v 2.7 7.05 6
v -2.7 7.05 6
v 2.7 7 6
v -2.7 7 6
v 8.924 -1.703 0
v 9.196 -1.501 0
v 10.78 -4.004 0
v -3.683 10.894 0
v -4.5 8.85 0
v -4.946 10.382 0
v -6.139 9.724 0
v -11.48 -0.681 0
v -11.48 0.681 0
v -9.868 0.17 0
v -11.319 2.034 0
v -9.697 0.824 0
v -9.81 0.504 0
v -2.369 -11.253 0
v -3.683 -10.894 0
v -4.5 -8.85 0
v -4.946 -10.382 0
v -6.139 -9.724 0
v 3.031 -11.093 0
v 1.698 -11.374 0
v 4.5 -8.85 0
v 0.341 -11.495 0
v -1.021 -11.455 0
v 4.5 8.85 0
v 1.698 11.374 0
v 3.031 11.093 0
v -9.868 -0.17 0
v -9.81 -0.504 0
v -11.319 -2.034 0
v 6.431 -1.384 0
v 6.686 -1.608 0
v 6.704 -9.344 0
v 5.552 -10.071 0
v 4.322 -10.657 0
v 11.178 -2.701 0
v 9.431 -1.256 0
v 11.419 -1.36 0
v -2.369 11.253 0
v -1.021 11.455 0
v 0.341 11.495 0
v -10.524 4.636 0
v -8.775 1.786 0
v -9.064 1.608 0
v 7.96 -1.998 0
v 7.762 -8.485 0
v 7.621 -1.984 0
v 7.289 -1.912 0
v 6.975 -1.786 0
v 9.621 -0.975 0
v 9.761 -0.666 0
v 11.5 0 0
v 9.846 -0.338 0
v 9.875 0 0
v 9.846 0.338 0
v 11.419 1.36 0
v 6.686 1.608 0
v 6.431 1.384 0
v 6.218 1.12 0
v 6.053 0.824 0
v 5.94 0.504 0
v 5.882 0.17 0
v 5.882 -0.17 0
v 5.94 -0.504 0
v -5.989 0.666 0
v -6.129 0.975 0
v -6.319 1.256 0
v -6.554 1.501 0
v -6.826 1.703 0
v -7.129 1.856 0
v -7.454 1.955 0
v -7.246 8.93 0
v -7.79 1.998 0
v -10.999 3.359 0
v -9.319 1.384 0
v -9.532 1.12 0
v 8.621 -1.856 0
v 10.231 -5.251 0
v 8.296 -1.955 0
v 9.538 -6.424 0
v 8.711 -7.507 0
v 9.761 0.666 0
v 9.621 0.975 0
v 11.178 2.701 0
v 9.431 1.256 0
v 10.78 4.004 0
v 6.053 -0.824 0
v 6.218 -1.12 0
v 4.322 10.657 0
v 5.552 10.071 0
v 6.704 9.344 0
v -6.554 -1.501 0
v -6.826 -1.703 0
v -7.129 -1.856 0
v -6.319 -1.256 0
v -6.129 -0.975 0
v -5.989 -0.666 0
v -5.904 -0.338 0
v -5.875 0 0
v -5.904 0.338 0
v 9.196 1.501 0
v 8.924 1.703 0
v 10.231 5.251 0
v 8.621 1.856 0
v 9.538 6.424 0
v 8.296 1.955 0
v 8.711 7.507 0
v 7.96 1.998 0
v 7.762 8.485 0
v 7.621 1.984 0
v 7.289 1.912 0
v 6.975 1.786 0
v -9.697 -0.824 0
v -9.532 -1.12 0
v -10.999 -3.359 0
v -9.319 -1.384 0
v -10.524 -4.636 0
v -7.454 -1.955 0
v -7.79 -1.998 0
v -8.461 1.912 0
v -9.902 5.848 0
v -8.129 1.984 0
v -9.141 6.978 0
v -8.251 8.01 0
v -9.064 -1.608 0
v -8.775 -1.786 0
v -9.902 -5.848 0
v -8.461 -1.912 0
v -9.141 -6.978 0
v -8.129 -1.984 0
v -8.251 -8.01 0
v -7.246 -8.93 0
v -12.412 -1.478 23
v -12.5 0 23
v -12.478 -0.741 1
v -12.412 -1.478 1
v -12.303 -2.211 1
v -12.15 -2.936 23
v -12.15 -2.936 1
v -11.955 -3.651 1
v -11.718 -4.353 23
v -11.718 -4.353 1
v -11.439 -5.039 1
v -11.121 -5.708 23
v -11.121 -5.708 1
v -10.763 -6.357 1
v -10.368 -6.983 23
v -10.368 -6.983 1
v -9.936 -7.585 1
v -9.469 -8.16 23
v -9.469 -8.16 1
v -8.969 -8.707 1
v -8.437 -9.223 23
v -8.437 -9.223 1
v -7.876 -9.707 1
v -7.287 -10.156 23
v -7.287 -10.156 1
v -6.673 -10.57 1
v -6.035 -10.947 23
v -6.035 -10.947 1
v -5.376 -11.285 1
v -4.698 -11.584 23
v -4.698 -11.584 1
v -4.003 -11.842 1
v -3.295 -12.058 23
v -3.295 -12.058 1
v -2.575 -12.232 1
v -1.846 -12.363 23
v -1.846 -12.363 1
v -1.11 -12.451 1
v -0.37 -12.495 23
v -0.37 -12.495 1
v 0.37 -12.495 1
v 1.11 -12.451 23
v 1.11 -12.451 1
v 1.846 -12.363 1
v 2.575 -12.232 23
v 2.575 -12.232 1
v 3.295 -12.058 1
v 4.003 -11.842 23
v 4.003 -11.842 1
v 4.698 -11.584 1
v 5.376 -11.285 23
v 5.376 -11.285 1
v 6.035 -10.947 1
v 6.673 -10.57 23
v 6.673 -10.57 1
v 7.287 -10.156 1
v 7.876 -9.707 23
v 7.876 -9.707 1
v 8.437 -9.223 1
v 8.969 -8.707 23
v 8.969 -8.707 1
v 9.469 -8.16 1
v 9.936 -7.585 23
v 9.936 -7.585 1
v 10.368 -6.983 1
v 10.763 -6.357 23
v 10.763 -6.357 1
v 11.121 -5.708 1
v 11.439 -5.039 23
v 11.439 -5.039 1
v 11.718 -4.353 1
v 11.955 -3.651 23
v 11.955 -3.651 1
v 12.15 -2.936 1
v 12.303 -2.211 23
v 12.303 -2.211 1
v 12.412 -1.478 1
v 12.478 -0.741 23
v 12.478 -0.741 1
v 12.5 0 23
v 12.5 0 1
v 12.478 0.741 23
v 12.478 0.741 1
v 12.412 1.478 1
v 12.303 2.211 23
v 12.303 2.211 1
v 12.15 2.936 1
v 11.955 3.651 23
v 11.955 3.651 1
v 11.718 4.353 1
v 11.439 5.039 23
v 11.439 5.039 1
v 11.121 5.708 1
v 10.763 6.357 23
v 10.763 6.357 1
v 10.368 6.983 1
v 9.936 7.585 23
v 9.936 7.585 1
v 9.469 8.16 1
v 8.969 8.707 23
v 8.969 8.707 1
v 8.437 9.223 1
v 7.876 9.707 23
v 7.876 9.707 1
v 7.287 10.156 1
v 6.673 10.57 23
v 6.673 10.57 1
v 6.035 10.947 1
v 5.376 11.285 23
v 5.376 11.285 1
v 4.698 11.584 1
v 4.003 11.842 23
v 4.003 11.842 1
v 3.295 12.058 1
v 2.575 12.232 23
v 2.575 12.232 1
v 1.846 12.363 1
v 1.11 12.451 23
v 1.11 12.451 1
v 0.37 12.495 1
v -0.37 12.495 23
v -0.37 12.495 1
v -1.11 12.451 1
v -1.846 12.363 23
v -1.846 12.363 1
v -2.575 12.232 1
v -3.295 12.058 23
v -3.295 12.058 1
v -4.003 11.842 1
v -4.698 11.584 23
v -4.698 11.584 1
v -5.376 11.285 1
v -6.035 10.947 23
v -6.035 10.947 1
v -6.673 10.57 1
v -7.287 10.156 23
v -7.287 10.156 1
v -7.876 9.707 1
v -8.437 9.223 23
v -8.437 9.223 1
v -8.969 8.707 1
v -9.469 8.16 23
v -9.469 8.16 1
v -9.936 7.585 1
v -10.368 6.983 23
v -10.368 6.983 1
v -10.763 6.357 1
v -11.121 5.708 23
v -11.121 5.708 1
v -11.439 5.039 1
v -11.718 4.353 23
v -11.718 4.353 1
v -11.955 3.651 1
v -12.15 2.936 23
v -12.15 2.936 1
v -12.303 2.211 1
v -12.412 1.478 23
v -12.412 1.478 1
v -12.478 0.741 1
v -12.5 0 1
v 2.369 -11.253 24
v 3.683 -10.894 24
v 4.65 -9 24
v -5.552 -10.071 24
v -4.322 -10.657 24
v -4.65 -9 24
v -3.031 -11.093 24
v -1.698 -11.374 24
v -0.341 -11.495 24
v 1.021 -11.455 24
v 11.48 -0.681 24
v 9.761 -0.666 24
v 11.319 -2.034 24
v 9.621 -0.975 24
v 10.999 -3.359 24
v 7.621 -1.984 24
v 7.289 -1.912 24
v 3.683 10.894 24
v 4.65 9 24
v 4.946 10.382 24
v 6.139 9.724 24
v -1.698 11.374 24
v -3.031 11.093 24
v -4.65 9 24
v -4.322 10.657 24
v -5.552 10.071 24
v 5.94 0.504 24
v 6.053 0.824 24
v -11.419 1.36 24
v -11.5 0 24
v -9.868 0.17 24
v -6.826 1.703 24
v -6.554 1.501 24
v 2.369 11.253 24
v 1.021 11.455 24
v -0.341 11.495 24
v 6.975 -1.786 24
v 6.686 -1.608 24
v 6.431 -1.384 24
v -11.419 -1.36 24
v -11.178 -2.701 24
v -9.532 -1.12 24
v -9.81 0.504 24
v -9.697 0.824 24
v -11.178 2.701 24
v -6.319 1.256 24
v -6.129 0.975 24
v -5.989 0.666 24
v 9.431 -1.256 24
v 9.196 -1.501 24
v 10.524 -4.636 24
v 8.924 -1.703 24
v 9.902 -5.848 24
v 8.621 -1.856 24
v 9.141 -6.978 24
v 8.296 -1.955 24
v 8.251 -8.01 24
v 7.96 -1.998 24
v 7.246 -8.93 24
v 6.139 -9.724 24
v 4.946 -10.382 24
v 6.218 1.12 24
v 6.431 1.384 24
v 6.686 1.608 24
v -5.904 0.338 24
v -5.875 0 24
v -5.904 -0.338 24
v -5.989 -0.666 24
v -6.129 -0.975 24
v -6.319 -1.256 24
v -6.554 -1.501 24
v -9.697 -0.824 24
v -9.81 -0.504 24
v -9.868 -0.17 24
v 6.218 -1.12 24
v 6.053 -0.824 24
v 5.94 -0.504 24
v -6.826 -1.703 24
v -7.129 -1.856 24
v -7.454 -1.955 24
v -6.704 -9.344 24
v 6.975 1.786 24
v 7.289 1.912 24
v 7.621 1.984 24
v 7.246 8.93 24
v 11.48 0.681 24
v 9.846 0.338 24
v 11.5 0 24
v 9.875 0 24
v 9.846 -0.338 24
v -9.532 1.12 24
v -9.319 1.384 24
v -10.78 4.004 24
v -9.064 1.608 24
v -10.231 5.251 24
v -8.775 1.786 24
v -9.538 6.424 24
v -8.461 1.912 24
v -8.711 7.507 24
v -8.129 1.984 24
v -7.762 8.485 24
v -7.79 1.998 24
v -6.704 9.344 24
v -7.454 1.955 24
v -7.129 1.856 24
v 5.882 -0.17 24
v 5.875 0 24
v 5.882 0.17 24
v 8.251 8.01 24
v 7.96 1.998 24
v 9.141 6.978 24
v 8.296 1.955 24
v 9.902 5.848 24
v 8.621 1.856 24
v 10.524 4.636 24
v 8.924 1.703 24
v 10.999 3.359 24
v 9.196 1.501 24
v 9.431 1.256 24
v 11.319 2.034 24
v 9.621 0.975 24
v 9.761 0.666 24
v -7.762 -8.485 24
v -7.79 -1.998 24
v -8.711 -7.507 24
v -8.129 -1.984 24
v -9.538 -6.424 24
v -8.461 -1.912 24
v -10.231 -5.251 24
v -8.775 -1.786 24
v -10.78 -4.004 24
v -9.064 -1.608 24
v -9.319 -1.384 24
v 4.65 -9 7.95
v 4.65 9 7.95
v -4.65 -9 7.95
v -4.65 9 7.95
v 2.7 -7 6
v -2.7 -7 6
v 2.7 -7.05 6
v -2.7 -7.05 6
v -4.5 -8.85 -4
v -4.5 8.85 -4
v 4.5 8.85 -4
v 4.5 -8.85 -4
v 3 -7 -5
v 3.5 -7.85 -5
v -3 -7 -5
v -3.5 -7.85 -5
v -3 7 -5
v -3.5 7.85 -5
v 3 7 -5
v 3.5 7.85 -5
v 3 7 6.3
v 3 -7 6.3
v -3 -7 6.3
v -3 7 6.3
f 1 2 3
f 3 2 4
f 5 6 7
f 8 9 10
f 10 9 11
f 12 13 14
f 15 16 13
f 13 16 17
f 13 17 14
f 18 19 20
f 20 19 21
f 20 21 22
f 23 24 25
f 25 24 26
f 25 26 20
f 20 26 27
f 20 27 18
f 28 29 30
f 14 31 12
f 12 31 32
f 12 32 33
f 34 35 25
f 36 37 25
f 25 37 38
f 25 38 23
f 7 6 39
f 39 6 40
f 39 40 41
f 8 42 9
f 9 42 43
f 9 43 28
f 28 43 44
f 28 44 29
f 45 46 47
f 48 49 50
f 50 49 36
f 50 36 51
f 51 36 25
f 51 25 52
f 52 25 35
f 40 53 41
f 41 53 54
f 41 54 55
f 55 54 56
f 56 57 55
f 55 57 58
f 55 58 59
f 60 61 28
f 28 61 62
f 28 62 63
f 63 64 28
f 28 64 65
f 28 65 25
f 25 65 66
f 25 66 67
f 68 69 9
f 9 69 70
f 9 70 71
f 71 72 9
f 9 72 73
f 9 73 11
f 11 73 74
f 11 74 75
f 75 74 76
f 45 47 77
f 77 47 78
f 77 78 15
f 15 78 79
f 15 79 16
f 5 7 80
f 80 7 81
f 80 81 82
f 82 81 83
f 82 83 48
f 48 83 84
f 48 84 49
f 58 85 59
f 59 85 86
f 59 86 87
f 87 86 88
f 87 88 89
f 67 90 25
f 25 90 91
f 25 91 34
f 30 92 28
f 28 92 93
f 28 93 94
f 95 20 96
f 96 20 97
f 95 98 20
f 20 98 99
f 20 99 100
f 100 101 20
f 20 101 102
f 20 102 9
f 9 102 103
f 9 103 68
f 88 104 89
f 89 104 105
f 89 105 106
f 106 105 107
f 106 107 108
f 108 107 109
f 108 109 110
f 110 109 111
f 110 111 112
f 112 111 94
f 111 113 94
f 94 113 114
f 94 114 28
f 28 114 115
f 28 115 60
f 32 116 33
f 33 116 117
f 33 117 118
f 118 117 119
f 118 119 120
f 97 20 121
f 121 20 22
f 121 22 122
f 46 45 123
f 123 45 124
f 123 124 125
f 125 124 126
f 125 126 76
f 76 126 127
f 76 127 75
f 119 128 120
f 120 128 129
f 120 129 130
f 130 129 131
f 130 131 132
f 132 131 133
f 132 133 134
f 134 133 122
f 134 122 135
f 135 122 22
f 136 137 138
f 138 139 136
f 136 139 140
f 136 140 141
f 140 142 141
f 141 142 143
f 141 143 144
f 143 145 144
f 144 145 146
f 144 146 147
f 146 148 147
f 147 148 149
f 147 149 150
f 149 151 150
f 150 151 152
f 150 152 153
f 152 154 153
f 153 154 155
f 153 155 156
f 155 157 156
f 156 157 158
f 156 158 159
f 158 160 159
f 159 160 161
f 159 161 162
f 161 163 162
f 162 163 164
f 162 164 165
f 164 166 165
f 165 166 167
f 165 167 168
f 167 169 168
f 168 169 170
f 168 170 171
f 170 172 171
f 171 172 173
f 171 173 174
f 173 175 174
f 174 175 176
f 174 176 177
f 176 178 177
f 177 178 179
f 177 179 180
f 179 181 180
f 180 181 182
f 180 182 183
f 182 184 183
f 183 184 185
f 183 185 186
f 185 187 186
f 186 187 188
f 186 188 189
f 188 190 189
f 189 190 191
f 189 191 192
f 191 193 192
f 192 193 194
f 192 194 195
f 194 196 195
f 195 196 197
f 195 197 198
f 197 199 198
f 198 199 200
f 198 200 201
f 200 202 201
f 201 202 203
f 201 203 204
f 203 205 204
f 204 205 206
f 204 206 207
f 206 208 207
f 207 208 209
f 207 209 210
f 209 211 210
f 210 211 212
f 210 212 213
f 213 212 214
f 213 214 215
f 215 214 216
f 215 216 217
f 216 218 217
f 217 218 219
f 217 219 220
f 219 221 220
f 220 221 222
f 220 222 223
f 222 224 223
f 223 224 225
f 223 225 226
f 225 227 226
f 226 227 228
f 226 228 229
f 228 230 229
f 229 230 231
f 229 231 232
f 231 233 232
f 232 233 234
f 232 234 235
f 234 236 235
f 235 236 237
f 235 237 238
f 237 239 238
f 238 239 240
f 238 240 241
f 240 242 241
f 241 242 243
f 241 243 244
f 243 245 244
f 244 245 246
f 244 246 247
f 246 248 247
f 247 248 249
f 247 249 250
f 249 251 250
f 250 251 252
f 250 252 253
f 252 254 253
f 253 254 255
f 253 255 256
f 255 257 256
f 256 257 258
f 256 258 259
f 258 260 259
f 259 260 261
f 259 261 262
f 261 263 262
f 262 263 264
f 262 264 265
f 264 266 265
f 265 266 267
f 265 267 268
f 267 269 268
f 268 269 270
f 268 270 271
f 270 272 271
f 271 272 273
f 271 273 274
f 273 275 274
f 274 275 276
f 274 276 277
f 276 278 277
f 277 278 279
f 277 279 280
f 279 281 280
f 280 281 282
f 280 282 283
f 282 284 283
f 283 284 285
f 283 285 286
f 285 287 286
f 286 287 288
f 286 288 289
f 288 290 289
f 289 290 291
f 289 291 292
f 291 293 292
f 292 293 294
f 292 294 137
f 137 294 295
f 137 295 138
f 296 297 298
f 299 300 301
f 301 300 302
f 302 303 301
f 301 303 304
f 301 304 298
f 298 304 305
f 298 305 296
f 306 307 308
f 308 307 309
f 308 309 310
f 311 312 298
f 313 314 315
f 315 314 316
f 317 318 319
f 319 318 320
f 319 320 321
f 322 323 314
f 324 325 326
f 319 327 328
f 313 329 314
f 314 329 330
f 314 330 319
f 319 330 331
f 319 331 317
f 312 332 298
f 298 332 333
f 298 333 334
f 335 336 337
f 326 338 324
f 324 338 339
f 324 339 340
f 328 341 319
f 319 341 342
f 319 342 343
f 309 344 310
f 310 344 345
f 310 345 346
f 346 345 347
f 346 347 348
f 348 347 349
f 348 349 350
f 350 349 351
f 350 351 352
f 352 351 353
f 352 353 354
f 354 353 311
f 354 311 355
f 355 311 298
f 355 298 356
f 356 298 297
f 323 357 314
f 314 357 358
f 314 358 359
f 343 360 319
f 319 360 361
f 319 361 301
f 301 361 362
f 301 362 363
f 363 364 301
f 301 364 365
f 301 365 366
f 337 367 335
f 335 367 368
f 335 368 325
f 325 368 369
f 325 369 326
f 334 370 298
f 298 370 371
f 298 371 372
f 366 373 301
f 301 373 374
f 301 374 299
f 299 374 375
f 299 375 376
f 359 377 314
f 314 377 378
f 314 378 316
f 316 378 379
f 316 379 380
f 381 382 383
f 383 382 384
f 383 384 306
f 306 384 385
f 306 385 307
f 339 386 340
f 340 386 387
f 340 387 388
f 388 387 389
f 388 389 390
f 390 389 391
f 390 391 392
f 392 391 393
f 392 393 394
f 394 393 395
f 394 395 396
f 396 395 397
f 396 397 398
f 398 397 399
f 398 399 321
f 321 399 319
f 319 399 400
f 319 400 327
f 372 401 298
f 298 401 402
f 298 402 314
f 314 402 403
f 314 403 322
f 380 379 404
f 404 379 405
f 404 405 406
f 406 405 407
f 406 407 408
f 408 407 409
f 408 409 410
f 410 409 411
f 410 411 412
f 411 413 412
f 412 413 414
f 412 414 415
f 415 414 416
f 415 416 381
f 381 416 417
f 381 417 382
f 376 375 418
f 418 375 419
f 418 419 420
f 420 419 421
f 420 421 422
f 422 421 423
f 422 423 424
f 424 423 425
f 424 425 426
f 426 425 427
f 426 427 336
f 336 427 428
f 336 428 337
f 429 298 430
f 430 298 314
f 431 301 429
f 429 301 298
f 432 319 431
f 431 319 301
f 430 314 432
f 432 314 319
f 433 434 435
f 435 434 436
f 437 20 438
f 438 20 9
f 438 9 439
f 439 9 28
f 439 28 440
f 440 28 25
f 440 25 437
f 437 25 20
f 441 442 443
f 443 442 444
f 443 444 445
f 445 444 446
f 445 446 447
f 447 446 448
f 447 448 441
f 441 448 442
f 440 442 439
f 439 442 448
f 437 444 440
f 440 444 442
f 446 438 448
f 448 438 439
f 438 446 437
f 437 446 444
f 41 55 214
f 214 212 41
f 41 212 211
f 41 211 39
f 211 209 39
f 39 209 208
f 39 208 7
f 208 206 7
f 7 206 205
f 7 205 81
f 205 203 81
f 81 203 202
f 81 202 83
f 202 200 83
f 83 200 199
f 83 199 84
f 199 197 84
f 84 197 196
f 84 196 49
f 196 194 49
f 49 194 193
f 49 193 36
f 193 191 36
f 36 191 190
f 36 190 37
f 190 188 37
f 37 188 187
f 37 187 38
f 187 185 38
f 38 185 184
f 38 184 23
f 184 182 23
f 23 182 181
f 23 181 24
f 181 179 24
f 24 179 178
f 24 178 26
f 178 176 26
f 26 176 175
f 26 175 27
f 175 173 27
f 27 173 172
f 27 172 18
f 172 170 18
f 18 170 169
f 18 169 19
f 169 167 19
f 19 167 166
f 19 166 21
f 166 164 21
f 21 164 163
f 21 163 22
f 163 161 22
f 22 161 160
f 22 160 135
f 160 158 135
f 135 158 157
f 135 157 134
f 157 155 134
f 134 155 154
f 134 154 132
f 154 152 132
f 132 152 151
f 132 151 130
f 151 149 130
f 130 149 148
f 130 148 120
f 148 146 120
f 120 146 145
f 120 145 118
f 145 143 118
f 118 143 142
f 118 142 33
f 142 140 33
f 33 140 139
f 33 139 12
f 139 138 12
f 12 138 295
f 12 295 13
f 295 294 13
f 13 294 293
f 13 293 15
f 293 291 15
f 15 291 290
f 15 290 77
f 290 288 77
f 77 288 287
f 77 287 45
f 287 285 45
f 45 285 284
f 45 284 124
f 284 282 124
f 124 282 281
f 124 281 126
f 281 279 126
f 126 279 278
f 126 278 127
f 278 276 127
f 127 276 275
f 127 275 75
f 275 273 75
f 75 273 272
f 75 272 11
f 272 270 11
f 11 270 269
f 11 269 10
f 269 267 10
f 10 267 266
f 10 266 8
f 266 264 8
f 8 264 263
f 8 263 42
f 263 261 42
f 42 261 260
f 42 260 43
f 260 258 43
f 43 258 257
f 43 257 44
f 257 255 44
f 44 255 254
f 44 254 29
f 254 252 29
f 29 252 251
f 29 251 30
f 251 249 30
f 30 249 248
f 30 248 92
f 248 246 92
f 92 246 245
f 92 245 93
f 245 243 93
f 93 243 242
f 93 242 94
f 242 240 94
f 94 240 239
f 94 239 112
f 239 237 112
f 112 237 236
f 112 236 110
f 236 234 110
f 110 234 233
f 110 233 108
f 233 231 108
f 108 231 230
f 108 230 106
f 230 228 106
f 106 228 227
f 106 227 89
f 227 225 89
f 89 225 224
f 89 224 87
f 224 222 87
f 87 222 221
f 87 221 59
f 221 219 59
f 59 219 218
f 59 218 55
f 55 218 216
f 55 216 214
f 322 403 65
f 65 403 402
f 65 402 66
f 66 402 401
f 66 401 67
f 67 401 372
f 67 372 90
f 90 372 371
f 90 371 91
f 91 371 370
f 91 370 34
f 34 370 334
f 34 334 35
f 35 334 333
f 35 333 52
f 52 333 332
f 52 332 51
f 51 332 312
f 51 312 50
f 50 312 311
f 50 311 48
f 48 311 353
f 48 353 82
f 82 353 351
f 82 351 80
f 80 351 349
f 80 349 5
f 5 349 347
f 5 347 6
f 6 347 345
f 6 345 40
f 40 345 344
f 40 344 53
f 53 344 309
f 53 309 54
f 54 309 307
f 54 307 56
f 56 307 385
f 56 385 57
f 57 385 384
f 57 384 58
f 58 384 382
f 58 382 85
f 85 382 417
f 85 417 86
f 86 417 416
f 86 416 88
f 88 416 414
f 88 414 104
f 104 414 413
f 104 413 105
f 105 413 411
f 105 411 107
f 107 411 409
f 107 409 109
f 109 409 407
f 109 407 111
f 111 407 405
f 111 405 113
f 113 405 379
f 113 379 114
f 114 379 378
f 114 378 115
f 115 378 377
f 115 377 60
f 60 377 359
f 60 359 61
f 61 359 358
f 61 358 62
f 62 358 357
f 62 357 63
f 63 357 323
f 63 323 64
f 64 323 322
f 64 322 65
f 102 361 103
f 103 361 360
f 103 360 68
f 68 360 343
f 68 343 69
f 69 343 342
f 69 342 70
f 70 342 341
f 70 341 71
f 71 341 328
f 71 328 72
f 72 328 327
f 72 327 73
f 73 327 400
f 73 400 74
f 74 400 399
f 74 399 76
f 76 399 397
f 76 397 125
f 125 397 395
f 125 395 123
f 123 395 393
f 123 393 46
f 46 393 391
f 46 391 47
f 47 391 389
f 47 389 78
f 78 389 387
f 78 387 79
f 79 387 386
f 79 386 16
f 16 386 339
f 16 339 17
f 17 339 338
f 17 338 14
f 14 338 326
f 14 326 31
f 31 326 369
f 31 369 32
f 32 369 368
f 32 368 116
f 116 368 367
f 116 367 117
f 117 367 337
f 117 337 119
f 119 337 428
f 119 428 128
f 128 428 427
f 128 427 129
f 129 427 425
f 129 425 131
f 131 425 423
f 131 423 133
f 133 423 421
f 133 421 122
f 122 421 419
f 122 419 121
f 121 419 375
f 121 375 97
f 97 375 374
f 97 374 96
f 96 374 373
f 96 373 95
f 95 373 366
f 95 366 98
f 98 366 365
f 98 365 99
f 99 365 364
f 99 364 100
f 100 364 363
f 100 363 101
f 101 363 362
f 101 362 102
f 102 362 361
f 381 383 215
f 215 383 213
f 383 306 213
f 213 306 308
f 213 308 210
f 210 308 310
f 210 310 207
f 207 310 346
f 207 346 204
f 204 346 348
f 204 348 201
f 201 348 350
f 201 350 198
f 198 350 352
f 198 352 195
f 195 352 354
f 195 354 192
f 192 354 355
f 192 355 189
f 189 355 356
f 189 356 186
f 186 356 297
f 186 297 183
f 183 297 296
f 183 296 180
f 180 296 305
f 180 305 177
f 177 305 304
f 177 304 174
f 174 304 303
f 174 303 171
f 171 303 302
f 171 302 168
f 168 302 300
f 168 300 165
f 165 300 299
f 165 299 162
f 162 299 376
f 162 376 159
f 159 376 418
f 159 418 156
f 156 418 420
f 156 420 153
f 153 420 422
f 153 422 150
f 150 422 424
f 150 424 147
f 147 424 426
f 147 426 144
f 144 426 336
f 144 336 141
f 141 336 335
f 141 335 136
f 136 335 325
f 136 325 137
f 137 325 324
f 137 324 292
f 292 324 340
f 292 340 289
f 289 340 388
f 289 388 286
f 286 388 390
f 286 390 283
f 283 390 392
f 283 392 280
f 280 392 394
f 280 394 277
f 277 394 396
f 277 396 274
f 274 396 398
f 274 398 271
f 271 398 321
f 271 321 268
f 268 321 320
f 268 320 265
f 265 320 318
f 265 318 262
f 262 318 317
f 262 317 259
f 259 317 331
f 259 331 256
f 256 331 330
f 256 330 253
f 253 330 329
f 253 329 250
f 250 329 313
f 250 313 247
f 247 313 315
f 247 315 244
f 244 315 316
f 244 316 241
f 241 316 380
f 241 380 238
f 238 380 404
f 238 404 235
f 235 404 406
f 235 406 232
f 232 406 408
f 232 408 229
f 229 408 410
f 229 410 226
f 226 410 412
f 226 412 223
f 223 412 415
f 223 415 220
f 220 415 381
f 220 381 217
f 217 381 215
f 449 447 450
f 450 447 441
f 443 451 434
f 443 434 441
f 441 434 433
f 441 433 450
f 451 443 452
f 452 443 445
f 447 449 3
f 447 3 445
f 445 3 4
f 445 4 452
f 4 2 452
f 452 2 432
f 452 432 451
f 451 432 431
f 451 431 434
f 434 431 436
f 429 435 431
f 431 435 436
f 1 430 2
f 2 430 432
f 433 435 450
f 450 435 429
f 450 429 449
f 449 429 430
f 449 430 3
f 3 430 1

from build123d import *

# Parameters (mm, degrees)
CROQUIS1_R              = 12.5
SALIENTE_EXTRUIR1_DEPTH = 24
CROQUIS2_W              = 9.3
CROQUIS2_H              = 18
CORTAR_EXTRUIR1_DEPTH   = 18
CROQUIS3_W              = 9
CROQUIS3_H              = 17.7
SALIENTE_EXTRUIR2_DEPTH = 5
CHAFL_N1_SIZE           = 1
CHAFL_N2_SIZE           = 1
CROQUIS4_R              = 2
CORTAR_EXTRUIR2_DEPTH   = 34.963215395
CHAFL_N3_SIZE           = 1
CROQUIS5_W              = 6
CROQUIS5_H              = 14
CORTAR_EXTRUIR3_DEPTH   = 26.228951623
CHAFL_N4_SIZE           = 1.95


with BuildPart() as part:
    # Croquis1 → Saliente-Extruir1 (new body)
    with BuildSketch(Plane.XY):
        Circle(CROQUIS1_R)
    extrude(amount=SALIENTE_EXTRUIR1_DEPTH)

    # Croquis2 → Cortar-Extruir1 (cut)
    with BuildSketch(Plane.XY.offset(24)):
        Rectangle(CROQUIS2_W, CROQUIS2_H)
    extrude(amount=-CORTAR_EXTRUIR1_DEPTH, mode=Mode.SUBTRACT)

    # Croquis3 → Saliente-Extruir2 (add)
    with BuildSketch(Plane(origin=(0, 0, 0), x_dir=(-1, 0, 0), z_dir=(0, 0, -1))):
        Rectangle(CROQUIS3_W, CROQUIS3_H)
    extrude(amount=SALIENTE_EXTRUIR2_DEPTH)

    # Chaflán1
    chafl_n1_edges = [part.edges().sort_by_distance(p)[0] for p in [
        (-4.5, 0, -5),
        (0, 8.85, -5),
        (4.5, 0, -5),
        (0, -8.85, -5),
    ]]
    chamfer(chafl_n1_edges, length=CHAFL_N1_SIZE)

    # Chaflán2
    chafl_n2_edges = [part.edges().sort_by_distance(p)[0] for p in [
        (-12.5, 0, 0),
    ]]
    chamfer(chafl_n2_edges, length=CHAFL_N2_SIZE)

    # Croquis4 → Cortar-Extruir2 (cut, through all)
    with BuildSketch(Plane.XY.offset(24)):
        with Locations((-7.875, 0)):
            Circle(CROQUIS4_R)
        with Locations((7.875, 0)):
            Circle(CROQUIS4_R)
    extrude(amount=-CORTAR_EXTRUIR2_DEPTH, mode=Mode.SUBTRACT)

    # Chaflán3
    chafl_n3_edges = [part.edges().sort_by_distance(p)[0] for p in [
        (-12.5, 0, 24),
    ]]
    chamfer(chafl_n3_edges, length=CHAFL_N3_SIZE)

    # Croquis5 → Cortar-Extruir3 (cut, through all)
    with BuildSketch(Plane.XY.offset(6)):
        Rectangle(CROQUIS5_W, CROQUIS5_H)
    extrude(amount=-CORTAR_EXTRUIR3_DEPTH, mode=Mode.SUBTRACT)

    # Chaflán4
    # the kernel refuses this chamfer: 1.95 mm, written as the material it adds along each edge
    with BuildSketch(Plane(origin=(4.65, 9, 6), x_dir=(0.02749587661058626, 0, 0.9996219169112968), z_dir=(0, -1, 0))) as chafl_n4_piece_1_section:
        Polygon((CHAFL_N4_SIZE * 0.999621916911, CHAFL_N4_SIZE * 0.0274958766106), (-CHAFL_N4_SIZE * 0.0274958766106, CHAFL_N4_SIZE * 0.999621916911), (0, 0), align=None)
    chafl_n4_piece_1 = extrude(amount=18, mode=Mode.PRIVATE)
    chafl_n4_piece_1 = split(chafl_n4_piece_1, bisect_by=Plane(origin=(3, 8, 6.663333333), z_dir=(1, 0, 0)), keep=Keep.TOP, mode=Mode.PRIVATE)
    add(chafl_n4_piece_1)
    with BuildSketch(Plane(origin=(4.65, 9, 6), x_dir=(0.02749587661058626, 0, 0.9996219169112968), z_dir=(0, -1, 0))) as chafl_n4_piece_2_section:
        Polygon((CHAFL_N4_SIZE * 0.999621916911, CHAFL_N4_SIZE * 0.0274958766106), (-CHAFL_N4_SIZE * 0.0274958766106, CHAFL_N4_SIZE * 0.999621916911), (0, 0), align=None)
    chafl_n4_piece_2 = extrude(amount=23.014781827, mode=Mode.PRIVATE)
    chafl_n4_piece_2 = split(chafl_n4_piece_2, bisect_by=Plane(origin=(2.9, 7, 6.1), z_dir=(0, 1, 0)), keep=Keep.TOP, mode=Mode.PRIVATE)
    add(chafl_n4_piece_2)
    with BuildSketch(Plane(origin=(4.65, 14.014781827, 6), x_dir=(0.02749587661058626, 0, 0.9996219169112968), z_dir=(0, -1, 0))) as chafl_n4_piece_3_section:
        Polygon((CHAFL_N4_SIZE * 0.999621916911, CHAFL_N4_SIZE * 0.0274958766106), (-CHAFL_N4_SIZE * 0.0274958766106, CHAFL_N4_SIZE * 0.999621916911), (0, 0), align=None)
    chafl_n4_piece_3 = extrude(amount=23.014781827, mode=Mode.PRIVATE)
    chafl_n4_piece_3 = split(chafl_n4_piece_3, bisect_by=Plane(origin=(2.9, -7, 6.1), z_dir=(0, -1, 0)), keep=Keep.TOP, mode=Mode.PRIVATE)
    add(chafl_n4_piece_3)
    with BuildSketch(Plane(origin=(-4.65, 9, 6), x_dir=(0, 0.02749587661058626, 0.9996219169112968), z_dir=(1, 0, 0)), Plane(origin=(4.65, -9, 6), x_dir=(0, -0.02749587661058626, 0.9996219169112968), z_dir=(-1, 0, 0))) as chafl_n4_piece_4:
        Polygon((CHAFL_N4_SIZE * 0.999621916911, CHAFL_N4_SIZE * 0.0274958766106), (-CHAFL_N4_SIZE * 0.0274958766106, CHAFL_N4_SIZE * 0.999621916911), (0, 0), align=None)
    extrude(amount=9.3)
    with BuildSketch(Plane(origin=(-4.65, -9, 6), x_dir=(-0.02749587661058626, 0, 0.9996219169112968), z_dir=(0, 1, 0))) as chafl_n4_piece_5_section:
        Polygon((CHAFL_N4_SIZE * 0.999621916911, CHAFL_N4_SIZE * 0.0274958766106), (-CHAFL_N4_SIZE * 0.0274958766106, CHAFL_N4_SIZE * 0.999621916911), (0, 0), align=None)
    chafl_n4_piece_5 = extrude(amount=18, mode=Mode.PRIVATE)
    chafl_n4_piece_5 = split(chafl_n4_piece_5, bisect_by=Plane(origin=(-3, -8, 6.663333333), z_dir=(-1, 0, 0)), keep=Keep.TOP, mode=Mode.PRIVATE)
    add(chafl_n4_piece_5)
    with BuildSketch(Plane(origin=(-4.65, -9, 6), x_dir=(-0.02749587661058626, 0, 0.9996219169112968), z_dir=(0, 1, 0))) as chafl_n4_piece_6_section:
        Polygon((CHAFL_N4_SIZE * 0.999621916911, CHAFL_N4_SIZE * 0.0274958766106), (-CHAFL_N4_SIZE * 0.0274958766106, CHAFL_N4_SIZE * 0.999621916911), (0, 0), align=None)
    chafl_n4_piece_6 = extrude(amount=23.014781827, mode=Mode.PRIVATE)
    chafl_n4_piece_6 = split(chafl_n4_piece_6, bisect_by=Plane(origin=(-2.9, -7, 6.1), z_dir=(0, -1, 0)), keep=Keep.TOP, mode=Mode.PRIVATE)
    add(chafl_n4_piece_6)
    with BuildSketch(Plane(origin=(-4.65, -14.014781827, 6), x_dir=(-0.02749587661058626, 0, 0.9996219169112968), z_dir=(0, 1, 0))) as chafl_n4_piece_7_section:
        Polygon((CHAFL_N4_SIZE * 0.999621916911, CHAFL_N4_SIZE * 0.0274958766106), (-CHAFL_N4_SIZE * 0.0274958766106, CHAFL_N4_SIZE * 0.999621916911), (0, 0), align=None)
    chafl_n4_piece_7 = extrude(amount=23.014781827, mode=Mode.PRIVATE)
    chafl_n4_piece_7 = split(chafl_n4_piece_7, bisect_by=Plane(origin=(-2.9, 7, 6.1), z_dir=(0, 1, 0)), keep=Keep.TOP, mode=Mode.PRIVATE)
    add(chafl_n4_piece_7)


solid = part.part
